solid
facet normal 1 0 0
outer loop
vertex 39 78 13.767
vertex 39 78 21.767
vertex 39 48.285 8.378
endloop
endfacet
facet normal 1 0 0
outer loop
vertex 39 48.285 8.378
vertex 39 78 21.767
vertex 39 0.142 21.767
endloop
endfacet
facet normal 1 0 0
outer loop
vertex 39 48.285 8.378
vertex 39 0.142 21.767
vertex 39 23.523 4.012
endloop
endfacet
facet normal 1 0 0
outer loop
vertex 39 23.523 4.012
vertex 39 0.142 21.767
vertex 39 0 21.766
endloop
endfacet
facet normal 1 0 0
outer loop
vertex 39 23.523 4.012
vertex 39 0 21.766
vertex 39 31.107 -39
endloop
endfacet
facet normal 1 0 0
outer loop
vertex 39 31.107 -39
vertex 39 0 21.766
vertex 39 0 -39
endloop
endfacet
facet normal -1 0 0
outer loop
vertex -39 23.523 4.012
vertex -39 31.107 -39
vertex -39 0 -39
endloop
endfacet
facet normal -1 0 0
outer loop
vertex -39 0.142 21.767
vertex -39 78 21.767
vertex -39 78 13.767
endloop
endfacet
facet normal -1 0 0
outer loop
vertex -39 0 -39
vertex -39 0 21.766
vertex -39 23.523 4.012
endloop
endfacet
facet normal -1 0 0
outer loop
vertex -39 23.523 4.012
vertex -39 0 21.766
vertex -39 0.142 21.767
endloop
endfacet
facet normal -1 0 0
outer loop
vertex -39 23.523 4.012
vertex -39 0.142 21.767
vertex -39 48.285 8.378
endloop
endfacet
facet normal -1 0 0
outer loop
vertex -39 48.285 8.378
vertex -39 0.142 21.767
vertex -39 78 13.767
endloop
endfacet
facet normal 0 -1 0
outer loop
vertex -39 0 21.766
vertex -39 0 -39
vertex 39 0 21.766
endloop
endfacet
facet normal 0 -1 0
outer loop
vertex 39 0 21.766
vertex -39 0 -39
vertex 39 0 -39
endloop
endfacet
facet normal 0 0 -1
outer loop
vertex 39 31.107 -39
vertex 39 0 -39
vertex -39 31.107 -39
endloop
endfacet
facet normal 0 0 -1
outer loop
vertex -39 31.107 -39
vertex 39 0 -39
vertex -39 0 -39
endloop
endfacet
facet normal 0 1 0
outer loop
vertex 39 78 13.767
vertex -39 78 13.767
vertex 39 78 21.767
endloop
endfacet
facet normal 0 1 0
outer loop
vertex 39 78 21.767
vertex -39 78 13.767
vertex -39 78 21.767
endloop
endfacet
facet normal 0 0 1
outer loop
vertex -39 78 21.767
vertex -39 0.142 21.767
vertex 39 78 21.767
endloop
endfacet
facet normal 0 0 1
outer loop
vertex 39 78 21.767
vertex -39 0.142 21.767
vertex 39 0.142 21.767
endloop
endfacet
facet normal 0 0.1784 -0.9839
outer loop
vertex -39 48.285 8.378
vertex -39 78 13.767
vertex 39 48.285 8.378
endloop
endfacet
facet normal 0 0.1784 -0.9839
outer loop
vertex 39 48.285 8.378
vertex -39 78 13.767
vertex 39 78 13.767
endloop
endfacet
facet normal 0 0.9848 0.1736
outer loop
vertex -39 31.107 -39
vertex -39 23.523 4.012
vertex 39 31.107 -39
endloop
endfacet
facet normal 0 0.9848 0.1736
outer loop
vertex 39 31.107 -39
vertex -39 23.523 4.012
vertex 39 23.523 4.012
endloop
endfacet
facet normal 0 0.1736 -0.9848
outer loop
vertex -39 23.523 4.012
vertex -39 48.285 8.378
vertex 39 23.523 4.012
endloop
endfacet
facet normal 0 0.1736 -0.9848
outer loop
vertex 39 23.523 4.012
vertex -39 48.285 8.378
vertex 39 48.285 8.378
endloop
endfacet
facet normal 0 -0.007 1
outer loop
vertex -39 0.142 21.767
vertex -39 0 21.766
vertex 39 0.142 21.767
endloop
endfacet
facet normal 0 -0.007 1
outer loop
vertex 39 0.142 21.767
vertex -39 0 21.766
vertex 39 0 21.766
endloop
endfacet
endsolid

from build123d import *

# Parameters (mm, degrees)
SKETCH1_W           = 78
SKETCH1_H           = 78
BOSS_EXTRUDE1_DEPTH = 78
CUT_EXTRUDE2_DEPTH  = 118
SKETCH3_W           = 78
SKETCH3_H           = 17.233329778
CUT_EXTRUDE3_DEPTH  = 96.269447677


with BuildPart() as part:
    # Sketch1 → Boss-Extrude1 (new body)
    with BuildSketch(Plane(origin=(0, 0, 0), x_dir=(1, 0, 0), z_dir=(0, 1, 0))):
        Rectangle(SKETCH1_W, SKETCH1_H)
    extrude(amount=BOSS_EXTRUDE1_DEPTH)

    # Sketch2 → Cut-Extrude2 (cut, through all)
    with BuildSketch(Plane(origin=(39, 0, 0), x_dir=(0, 0, -1), z_dir=(1, 0, 0))):
        Polygon((-21.767253197, 0.141749363), (-21.767253197, 78), (-39, 78), (-39, 0), align=None)
        Polygon((-4.012108483, 23.522620279), (39, 31.106815501), (39, 78), (-13.767253197, 78), (-8.378409218, 48.285142253), align=None)
    extrude(amount=-CUT_EXTRUDE2_DEPTH, mode=Mode.SUBTRACT)

    # Sketch3 → Cut-Extrude3 (cut, through all)
    with BuildSketch(Plane(origin=(0, 0.320775974, 0.002638569), x_dir=(1, 0, 0), z_dir=(0, 0.9999661716212329, 0.00822530322693927))):
        with Locations((0, -30.382015804)):
            Rectangle(SKETCH3_W, SKETCH3_H)
    extrude(amount=-CUT_EXTRUDE3_DEPTH, mode=Mode.SUBTRACT)


solid = part.part
